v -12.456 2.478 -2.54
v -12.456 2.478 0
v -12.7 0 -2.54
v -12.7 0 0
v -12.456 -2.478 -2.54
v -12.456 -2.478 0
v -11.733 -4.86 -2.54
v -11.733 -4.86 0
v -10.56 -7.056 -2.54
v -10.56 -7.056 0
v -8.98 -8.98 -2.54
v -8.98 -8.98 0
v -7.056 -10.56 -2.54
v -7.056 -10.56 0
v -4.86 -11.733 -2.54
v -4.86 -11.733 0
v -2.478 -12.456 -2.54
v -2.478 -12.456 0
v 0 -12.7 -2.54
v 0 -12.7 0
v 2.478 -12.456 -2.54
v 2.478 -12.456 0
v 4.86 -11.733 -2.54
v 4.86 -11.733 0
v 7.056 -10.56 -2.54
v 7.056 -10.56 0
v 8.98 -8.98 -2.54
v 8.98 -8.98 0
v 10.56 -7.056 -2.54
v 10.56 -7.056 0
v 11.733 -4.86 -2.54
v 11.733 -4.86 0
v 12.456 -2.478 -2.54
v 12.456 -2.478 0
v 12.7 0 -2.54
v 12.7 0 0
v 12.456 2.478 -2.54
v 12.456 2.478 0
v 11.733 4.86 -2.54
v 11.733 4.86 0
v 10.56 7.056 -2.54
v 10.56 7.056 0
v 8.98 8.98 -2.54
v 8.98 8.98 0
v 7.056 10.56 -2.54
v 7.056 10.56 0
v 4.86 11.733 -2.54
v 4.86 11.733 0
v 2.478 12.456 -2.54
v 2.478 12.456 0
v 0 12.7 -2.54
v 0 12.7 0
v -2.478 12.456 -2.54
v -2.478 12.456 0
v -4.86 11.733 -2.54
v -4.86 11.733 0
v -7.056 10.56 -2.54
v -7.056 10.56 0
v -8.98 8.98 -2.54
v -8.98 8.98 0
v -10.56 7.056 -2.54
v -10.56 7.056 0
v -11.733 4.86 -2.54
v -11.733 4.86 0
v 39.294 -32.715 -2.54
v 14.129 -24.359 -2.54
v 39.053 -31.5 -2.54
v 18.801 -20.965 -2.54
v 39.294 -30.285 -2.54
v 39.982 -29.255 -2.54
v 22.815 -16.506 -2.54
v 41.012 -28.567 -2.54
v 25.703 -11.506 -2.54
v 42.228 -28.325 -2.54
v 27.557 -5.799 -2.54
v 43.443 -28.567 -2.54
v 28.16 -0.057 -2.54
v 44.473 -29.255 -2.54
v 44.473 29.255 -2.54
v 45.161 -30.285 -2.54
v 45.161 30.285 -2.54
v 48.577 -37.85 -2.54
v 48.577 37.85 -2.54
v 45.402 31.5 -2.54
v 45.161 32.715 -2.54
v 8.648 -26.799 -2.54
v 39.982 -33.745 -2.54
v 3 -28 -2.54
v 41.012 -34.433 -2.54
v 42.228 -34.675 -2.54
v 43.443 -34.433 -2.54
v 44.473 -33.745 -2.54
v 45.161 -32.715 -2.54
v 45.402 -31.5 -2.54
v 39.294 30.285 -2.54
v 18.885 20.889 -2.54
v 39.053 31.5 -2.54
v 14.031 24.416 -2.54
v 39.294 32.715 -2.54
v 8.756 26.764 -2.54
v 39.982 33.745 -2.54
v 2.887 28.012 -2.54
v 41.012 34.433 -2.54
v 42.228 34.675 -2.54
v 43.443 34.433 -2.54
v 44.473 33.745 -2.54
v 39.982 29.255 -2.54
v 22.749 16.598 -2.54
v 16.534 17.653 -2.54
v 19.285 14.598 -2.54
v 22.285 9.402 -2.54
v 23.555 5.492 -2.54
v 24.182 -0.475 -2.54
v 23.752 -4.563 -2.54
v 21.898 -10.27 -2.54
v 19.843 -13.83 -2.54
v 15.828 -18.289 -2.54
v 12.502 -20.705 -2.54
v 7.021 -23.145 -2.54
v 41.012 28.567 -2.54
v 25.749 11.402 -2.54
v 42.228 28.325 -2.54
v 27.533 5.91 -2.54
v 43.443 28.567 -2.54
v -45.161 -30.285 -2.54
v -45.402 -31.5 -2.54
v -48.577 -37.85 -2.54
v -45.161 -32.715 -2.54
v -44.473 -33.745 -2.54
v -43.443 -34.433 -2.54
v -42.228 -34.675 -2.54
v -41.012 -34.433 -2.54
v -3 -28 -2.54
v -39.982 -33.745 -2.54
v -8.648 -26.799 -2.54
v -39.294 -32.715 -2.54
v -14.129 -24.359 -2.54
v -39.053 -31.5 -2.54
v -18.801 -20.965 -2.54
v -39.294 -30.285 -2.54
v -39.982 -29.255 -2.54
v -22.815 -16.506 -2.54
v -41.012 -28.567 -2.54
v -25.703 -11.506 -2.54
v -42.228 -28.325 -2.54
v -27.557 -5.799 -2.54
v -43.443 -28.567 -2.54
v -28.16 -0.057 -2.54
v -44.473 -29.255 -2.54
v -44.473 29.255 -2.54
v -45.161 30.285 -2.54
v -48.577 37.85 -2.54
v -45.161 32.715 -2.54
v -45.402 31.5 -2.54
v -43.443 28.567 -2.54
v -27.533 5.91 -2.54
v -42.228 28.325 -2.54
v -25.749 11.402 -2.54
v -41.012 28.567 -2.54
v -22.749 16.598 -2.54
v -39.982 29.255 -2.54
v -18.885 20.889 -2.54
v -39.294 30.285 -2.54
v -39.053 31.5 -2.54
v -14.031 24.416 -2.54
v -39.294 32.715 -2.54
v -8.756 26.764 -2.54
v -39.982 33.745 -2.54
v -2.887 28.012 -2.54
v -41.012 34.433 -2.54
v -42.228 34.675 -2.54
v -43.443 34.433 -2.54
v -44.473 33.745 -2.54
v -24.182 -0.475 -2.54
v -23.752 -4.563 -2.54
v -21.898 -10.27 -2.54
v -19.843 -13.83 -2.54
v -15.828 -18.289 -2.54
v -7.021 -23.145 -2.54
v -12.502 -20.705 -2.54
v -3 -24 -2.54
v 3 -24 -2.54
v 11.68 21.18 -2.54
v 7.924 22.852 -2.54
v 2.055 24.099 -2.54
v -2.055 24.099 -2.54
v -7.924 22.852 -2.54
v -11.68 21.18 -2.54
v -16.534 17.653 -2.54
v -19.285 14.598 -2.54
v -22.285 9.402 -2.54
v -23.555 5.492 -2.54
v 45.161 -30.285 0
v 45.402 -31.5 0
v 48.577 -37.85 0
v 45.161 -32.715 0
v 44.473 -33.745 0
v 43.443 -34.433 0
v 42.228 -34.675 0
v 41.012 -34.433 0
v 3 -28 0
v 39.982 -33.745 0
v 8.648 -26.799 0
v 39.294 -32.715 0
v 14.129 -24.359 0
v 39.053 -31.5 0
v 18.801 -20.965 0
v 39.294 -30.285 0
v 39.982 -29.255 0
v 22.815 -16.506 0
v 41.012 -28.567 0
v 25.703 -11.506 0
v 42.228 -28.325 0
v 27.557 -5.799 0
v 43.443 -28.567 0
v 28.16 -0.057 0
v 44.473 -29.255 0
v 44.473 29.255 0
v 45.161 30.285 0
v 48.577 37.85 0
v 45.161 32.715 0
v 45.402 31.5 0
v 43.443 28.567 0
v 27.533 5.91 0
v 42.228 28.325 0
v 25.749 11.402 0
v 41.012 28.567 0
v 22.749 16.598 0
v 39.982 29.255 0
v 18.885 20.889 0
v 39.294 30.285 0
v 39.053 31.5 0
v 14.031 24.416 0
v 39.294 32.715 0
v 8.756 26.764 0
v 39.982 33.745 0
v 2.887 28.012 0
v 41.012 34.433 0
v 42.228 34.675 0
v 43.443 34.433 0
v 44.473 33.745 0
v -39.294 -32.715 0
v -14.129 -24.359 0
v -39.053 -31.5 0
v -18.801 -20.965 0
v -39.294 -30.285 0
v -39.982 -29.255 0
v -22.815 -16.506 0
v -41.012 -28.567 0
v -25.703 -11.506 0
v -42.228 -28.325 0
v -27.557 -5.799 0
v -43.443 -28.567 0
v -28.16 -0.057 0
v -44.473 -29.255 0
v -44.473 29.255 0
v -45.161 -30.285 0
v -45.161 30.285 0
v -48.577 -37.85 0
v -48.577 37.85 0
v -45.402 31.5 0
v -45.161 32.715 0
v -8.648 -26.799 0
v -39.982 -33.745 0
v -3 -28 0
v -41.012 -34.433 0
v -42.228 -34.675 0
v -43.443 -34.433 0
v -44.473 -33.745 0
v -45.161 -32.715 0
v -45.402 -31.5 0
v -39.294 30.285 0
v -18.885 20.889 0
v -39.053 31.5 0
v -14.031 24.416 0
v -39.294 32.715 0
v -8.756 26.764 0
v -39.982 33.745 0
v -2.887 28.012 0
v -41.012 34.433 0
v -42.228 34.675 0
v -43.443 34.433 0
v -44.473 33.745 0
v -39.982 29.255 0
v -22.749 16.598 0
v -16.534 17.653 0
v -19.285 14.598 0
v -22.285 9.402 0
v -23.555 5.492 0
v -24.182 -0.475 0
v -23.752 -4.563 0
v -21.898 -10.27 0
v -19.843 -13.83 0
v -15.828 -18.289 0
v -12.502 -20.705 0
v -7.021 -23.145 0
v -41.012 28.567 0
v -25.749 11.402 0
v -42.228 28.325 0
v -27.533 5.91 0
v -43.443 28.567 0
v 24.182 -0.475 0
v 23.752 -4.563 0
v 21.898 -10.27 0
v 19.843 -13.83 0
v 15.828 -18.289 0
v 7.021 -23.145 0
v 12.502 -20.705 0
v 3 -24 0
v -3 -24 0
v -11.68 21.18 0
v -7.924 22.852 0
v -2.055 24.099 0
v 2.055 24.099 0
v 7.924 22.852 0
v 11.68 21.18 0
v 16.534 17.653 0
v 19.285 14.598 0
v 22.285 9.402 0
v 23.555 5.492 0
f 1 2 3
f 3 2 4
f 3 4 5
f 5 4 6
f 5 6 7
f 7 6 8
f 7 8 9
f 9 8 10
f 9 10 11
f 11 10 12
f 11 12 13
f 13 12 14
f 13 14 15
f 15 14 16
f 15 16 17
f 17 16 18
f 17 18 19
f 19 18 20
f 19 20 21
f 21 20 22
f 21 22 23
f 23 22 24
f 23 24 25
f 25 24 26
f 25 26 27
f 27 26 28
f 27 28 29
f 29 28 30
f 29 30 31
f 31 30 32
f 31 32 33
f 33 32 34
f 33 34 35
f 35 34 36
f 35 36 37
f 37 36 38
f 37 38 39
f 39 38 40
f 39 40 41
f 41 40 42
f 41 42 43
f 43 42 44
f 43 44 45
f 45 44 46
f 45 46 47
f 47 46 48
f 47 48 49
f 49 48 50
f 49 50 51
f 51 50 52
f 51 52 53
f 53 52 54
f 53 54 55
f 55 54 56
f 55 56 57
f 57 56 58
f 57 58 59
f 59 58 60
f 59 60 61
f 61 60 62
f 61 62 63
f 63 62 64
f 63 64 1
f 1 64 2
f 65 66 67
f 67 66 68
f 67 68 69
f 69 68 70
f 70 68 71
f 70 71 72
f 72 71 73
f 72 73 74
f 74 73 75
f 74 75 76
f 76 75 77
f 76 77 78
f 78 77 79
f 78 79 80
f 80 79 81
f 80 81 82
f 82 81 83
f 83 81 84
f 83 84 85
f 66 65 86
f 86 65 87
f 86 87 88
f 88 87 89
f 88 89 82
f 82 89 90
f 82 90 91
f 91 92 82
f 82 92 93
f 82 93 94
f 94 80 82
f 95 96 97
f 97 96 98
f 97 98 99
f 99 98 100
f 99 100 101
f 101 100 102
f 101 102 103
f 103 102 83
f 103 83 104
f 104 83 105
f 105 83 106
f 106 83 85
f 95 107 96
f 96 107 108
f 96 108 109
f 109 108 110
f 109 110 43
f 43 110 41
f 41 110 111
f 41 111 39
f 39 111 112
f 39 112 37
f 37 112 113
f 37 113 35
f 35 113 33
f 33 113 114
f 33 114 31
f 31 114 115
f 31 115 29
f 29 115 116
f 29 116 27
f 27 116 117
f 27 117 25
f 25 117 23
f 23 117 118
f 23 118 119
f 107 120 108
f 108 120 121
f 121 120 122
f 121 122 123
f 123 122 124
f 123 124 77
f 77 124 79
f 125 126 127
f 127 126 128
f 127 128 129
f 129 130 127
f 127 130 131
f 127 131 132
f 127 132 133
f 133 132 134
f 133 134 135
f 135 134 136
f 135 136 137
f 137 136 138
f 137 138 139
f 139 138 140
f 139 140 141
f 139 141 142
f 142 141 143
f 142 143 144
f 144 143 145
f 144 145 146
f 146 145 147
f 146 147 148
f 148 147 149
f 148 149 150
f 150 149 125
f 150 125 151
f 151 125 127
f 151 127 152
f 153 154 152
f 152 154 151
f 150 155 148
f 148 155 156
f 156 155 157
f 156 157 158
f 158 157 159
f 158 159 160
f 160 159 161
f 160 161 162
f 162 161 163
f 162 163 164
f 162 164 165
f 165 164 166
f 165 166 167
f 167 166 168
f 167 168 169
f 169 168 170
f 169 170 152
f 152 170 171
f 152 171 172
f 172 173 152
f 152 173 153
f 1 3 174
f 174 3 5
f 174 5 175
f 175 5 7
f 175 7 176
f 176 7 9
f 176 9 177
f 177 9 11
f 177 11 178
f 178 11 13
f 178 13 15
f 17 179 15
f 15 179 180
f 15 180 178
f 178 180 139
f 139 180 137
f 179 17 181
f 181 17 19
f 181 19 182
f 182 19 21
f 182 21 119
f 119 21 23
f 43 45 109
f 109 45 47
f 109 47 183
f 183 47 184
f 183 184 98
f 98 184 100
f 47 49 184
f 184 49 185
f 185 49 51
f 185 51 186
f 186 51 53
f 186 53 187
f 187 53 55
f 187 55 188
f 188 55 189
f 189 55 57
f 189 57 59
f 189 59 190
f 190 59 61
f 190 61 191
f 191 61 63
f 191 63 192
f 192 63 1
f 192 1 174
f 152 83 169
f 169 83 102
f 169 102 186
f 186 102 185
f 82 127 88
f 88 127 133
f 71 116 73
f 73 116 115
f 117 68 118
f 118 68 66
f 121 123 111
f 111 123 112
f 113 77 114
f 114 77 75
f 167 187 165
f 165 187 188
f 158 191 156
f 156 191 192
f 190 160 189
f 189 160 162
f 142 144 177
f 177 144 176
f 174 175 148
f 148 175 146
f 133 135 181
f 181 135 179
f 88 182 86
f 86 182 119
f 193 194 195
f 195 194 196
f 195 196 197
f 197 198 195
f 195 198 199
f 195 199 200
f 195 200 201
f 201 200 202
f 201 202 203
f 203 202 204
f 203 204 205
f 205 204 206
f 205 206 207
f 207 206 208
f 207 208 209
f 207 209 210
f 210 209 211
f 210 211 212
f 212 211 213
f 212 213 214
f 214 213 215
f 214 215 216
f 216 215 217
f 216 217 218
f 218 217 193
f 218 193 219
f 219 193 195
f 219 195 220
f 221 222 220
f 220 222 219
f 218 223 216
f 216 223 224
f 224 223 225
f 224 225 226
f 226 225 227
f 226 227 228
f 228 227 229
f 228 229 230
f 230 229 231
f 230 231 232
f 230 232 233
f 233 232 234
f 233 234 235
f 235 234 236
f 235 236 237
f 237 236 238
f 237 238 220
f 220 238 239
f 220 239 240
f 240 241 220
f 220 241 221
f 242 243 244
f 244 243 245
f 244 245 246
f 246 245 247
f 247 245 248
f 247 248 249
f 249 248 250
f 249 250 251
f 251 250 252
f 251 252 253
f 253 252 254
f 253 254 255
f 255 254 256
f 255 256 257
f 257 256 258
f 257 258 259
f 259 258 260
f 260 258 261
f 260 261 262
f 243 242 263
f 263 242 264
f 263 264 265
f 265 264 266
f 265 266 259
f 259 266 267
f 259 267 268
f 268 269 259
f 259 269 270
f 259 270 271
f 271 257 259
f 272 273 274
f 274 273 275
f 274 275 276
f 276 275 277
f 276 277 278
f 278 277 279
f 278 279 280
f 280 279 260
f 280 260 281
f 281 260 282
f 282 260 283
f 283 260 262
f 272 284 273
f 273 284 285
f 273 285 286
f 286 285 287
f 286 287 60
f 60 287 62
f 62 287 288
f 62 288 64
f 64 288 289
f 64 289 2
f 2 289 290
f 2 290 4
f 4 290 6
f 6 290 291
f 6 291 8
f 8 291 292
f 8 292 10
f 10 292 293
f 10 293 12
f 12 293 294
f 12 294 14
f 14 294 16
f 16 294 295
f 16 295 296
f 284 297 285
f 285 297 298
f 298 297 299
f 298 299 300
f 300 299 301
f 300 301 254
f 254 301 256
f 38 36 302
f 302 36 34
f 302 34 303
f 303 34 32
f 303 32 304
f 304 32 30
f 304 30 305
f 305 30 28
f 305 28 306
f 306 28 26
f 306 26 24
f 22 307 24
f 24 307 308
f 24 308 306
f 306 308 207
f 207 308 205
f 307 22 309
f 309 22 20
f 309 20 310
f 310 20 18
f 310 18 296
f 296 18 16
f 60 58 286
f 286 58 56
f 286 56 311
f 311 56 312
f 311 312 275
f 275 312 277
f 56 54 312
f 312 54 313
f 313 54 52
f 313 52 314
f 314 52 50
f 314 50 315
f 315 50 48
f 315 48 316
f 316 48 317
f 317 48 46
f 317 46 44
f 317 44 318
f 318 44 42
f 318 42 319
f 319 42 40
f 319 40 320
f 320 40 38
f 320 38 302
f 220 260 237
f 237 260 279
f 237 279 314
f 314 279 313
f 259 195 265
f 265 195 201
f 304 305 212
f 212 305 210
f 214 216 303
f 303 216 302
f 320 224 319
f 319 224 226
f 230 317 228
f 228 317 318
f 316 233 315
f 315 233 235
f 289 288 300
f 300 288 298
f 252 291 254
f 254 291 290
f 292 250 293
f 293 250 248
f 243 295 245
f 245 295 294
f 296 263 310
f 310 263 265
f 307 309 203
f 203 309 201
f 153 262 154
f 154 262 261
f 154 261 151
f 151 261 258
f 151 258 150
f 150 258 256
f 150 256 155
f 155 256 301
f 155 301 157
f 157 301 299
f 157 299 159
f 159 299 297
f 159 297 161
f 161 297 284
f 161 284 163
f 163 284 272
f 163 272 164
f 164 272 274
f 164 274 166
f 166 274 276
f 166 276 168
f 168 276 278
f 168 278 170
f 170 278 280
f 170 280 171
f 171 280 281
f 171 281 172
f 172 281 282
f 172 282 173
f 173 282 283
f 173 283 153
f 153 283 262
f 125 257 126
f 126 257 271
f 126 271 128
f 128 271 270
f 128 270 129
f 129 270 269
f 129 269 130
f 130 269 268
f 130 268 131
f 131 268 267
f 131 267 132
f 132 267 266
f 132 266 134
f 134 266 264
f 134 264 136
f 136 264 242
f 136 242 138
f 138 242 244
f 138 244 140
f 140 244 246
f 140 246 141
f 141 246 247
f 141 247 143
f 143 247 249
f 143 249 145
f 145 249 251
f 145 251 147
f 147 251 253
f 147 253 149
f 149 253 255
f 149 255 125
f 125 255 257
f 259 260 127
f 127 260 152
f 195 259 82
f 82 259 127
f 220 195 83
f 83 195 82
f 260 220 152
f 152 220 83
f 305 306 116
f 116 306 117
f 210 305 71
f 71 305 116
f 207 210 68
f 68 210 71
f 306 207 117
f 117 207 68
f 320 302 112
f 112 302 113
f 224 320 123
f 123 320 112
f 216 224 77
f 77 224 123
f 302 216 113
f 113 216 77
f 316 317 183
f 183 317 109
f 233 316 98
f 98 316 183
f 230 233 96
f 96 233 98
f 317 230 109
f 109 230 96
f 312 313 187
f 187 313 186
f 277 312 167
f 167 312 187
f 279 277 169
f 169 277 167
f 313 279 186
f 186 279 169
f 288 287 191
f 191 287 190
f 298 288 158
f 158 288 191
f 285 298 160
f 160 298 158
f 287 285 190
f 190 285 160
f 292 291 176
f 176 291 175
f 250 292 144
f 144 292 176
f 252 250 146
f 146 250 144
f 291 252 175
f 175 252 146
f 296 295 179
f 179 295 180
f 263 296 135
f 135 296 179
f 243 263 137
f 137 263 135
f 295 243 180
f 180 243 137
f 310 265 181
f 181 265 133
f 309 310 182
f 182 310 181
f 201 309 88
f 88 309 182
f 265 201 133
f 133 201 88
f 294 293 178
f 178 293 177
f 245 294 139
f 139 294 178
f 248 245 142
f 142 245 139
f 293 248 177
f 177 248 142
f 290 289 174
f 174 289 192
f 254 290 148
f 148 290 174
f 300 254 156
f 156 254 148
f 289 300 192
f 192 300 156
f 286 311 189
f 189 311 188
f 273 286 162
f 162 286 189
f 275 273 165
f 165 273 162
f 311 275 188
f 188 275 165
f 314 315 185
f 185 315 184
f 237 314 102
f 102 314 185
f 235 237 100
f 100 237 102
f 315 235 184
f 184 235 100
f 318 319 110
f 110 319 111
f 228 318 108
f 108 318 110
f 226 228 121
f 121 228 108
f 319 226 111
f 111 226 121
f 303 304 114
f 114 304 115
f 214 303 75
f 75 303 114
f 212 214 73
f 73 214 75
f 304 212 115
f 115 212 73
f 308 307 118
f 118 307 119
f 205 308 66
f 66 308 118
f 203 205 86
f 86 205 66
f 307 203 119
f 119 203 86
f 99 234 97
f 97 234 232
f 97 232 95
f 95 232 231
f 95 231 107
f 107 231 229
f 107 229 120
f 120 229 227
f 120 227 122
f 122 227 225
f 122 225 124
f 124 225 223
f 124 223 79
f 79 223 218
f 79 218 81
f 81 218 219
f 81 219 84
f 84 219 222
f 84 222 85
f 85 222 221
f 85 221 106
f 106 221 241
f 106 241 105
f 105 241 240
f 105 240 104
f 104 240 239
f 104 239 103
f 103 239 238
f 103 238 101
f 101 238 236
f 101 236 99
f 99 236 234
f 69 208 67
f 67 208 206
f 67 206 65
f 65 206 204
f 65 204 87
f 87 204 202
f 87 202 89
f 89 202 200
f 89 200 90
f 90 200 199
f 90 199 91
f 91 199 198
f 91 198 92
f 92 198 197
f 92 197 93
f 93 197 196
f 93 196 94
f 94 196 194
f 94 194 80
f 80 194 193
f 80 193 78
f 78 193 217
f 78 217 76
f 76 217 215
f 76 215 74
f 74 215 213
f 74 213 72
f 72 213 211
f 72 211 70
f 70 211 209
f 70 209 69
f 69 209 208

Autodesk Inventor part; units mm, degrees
ref_plane "YZ Plane" through (0, 0, 0) normal (1, 0, 0) x (0, 1, 0)
ref_plane "XZ Plane" through (0, 0, 0) normal (0, 1, 0) x (-1, 0, 0)
ref_plane "XY Plane" through (0, 0, 0) normal (0, 0, 1) x (1, 0, 0)
sketch "Sketch1" plane through (0, 0, 0) normal (0, 0, 1) x (1, 0, 0)
  circle A0 centre (0, 0) radius 34
  dimension "d0" = 68
extrude "Extrusion1" add sketch "Sketch1" against normal blind 2.54
sketch "Sketch3" plane through (0, 0, -2.54) normal (0, 0, -1) x (-1, 0, 0)
  circle A0 centre (0, 0) radius 26 construction
  line L0 (3, -24) -> (-3, -24)
  line L1 (-3, -24) -> (-3, -28)
  line L2 (-3, -28) -> (3, -28)
  line L3 (3, -28) -> (3, -24)
  line L4 (3, -24) -> (-3, -28) construction
  line L5 (-3, -24) -> (3, -28) construction
  line L6 (8.648, -26.7995) -> (14.1293, -24.3591)
  line L7 (14.1293, -24.3591) -> (12.5023, -20.7049)
  line L8 (7.021, -23.1453) -> (8.648, -26.7995)
  line L9 (12.5023, -20.7049) -> (7.021, -23.1453)
  line L10 (18.8007, -20.9651) -> (22.8154, -16.5062)
  line L11 (22.8154, -16.5062) -> (19.8429, -13.8297)
  line L12 (15.8281, -18.2886) -> (18.8007, -20.9651)
  line L13 (19.8429, -13.8297) -> (15.8281, -18.2886)
  line L14 (25.7025, -11.5056) -> (27.5566, -5.7993)
  line L15 (27.5566, -5.7993) -> (23.7524, -4.5632)
  line L16 (21.8983, -10.2696) -> (25.7025, -11.5056)
  line L17 (23.7524, -4.5632) -> (21.8983, -10.2696)
  line L18 (28.1602, -0.0568) -> (27.533, 5.9104)
  line L19 (27.533, 5.9104) -> (23.5549, 5.4922)
  line L20 (24.1821, -0.4749) -> (28.1602, -0.0568)
  line L21 (23.5549, 5.4922) -> (24.1821, -0.4749)
  line L22 (25.7487, 11.4019) -> (22.7487, 16.5981)
  line L23 (22.7487, 16.5981) -> (19.2846, 14.5981)
  line L24 (22.2846, 9.4019) -> (25.7487, 11.4019)
  line L25 (19.2846, 14.5981) -> (22.2846, 9.4019)
  line L26 (18.885, 20.8891) -> (14.0309, 24.4158)
  line L27 (14.0309, 24.4158) -> (11.6798, 21.1798)
  line L28 (16.5339, 17.6531) -> (18.885, 20.8891)
  line L29 (11.6798, 21.1798) -> (16.5339, 17.6531)
  line L30 (8.756, 26.7644) -> (2.8871, 28.0119)
  line L31 (2.8871, 28.0119) -> (2.0554, 24.0993)
  line L32 (7.9243, 22.8518) -> (8.756, 26.7644)
  line L33 (2.0554, 24.0993) -> (7.9243, 22.8518)
  line L34 (-2.8871, 28.0119) -> (-8.756, 26.7644)
  line L35 (-8.756, 26.7644) -> (-7.9243, 22.8518)
  line L36 (-2.0554, 24.0993) -> (-2.8871, 28.0119)
  line L37 (-7.9243, 22.8518) -> (-2.0554, 24.0993)
  line L38 (-14.0309, 24.4158) -> (-18.885, 20.8891)
  line L39 (-18.885, 20.8891) -> (-16.5339, 17.6531)
  line L40 (-11.6798, 21.1798) -> (-14.0309, 24.4158)
  line L41 (-16.5339, 17.6531) -> (-11.6798, 21.1798)
  line L42 (-22.7487, 16.5981) -> (-25.7487, 11.4019)
  line L43 (-25.7487, 11.4019) -> (-22.2846, 9.4019)
  line L44 (-19.2846, 14.5981) -> (-22.7487, 16.5981)
  line L45 (-22.2846, 9.4019) -> (-19.2846, 14.5981)
  line L46 (-27.533, 5.9104) -> (-28.1602, -0.0568)
  line L47 (-28.1602, -0.0568) -> (-24.1821, -0.4749)
  line L48 (-23.5549, 5.4922) -> (-27.533, 5.9104)
  line L49 (-24.1821, -0.4749) -> (-23.5549, 5.4922)
  line L50 (-27.5566, -5.7993) -> (-25.7025, -11.5056)
  line L51 (-25.7025, -11.5056) -> (-21.8983, -10.2696)
  line L52 (-23.7524, -4.5632) -> (-27.5566, -5.7993)
  line L53 (-21.8983, -10.2696) -> (-23.7524, -4.5632)
  line L54 (-22.8154, -16.5062) -> (-18.8007, -20.9651)
  line L55 (-18.8007, -20.9651) -> (-15.8281, -18.2886)
  line L56 (-19.8429, -13.8297) -> (-22.8154, -16.5062)
  line L57 (-15.8281, -18.2886) -> (-19.8429, -13.8297)
  line L58 (-14.1293, -24.3591) -> (-8.648, -26.7995)
  line L59 (-8.648, -26.7995) -> (-7.021, -23.1453)
  line L60 (-12.5023, -20.7049) -> (-14.1293, -24.3591)
  line L61 (-7.021, -23.1453) -> (-12.5023, -20.7049)
  point P0 (0, -26)
  dimension "d6" = 52
  dimension "d7" = 4
  dimension "d8" = 6
  dimension "d11" = 360
extrude "Extrusion3" cut sketch "Sketch3" against normal through all
sketch "Sketch7" plane through (0, 0, 0) normal (0, 0, 1) x (1, 0, 0)
  line L0 (-48.5775, -37.85) -> (48.5775, -37.85)
  line L1 (48.5775, -37.85) -> (48.5775, 37.85)
  line L2 (48.5775, 37.85) -> (-48.5775, 37.85)
  line L3 (-48.5775, 37.85) -> (-48.5775, -37.85)
  line L4 (-48.5775, -37.85) -> (48.5775, 37.85) construction
  line L5 (48.5775, -37.85) -> (-48.5775, 37.85) construction
  circle A0 centre (0, 0) radius 34
  dimension "mountWidth" = 97.155
  dimension "mountHeight" = 75.7
extrude "Extrusion4" add sketch "Sketch7" against normal blind 2.54
sketch "Sketch8" plane through (0, 0, 0) normal (0, 0, 1) x (1, 0, 0)
  line L0 (-42.2275, -31.5) -> (42.2275, -31.5) construction
  line L1 (42.2275, -31.5) -> (42.2275, 31.5) construction
  line L2 (42.2275, 31.5) -> (-42.2275, 31.5) construction
  line L3 (-42.2275, 31.5) -> (-42.2275, -31.5) construction
  line L4 (-48.5775, -37.85) -> (48.5775, -37.85) construction
  line L5 (-48.5775, 37.85) -> (-48.5775, -37.85) construction
  line L6 (48.5775, -37.85) -> (48.5775, 37.85) construction
  line L7 (48.5775, 37.85) -> (-48.5775, 37.85) construction
  point P0 (0, 0)
  dimension "d47" = 6.35
  dimension "d48" = 6.35
  dimension "d49" = 6.35
  dimension "d50" = 6.35
sketch "Sketch10" plane through (0, 0, 0) normal (0, 0, 1) x (1, 0, 0)
  circle A0 centre (0, 0) radius 12.7
  dimension "d58" = 25.4
extrude "Extrusion5" cut sketch "Sketch10" against normal through all
sketch "Sketch11" plane through (0, 0, 0) normal (0, 0, 1) x (1, 0, 0)
  circle A0 centre (-42.2275, 31.5) radius 2.5527 projected
  circle A1 centre (-42.2275, 31.5) radius 3.175
  circle A2 centre (42.2275, 31.5) radius 2.5527 projected
  circle A3 centre (42.2275, 31.5) radius 3.175
  circle A4 centre (42.2275, -31.5) radius 2.5527 projected
  circle A5 centre (42.2275, -31.5) radius 3.175
  circle A6 centre (-42.2275, -31.5) radius 2.5527 projected
  circle A7 centre (-42.2275, -31.5) radius 3.175
  point P0 (0, 0)
  dimension "d61" = 6.35
extrude "Extrusion6" cut sketch "Sketch11" against normal through all contours A0 | A1 | A2 | A3 | A4 | A5 | A6 | A7
equation "\"d1\" = CoverDepth"
equation "\"d6\" = 2 * LightRingCenterRadius"
equation "\"depth\" = CoverDepth"
equation "\"CoverDepth\" = 2.54"
equation "\"LightRingCenterRadius\" = 26"
properties part number "2020LightRingCover" material "Polycarbonate, Clear"
